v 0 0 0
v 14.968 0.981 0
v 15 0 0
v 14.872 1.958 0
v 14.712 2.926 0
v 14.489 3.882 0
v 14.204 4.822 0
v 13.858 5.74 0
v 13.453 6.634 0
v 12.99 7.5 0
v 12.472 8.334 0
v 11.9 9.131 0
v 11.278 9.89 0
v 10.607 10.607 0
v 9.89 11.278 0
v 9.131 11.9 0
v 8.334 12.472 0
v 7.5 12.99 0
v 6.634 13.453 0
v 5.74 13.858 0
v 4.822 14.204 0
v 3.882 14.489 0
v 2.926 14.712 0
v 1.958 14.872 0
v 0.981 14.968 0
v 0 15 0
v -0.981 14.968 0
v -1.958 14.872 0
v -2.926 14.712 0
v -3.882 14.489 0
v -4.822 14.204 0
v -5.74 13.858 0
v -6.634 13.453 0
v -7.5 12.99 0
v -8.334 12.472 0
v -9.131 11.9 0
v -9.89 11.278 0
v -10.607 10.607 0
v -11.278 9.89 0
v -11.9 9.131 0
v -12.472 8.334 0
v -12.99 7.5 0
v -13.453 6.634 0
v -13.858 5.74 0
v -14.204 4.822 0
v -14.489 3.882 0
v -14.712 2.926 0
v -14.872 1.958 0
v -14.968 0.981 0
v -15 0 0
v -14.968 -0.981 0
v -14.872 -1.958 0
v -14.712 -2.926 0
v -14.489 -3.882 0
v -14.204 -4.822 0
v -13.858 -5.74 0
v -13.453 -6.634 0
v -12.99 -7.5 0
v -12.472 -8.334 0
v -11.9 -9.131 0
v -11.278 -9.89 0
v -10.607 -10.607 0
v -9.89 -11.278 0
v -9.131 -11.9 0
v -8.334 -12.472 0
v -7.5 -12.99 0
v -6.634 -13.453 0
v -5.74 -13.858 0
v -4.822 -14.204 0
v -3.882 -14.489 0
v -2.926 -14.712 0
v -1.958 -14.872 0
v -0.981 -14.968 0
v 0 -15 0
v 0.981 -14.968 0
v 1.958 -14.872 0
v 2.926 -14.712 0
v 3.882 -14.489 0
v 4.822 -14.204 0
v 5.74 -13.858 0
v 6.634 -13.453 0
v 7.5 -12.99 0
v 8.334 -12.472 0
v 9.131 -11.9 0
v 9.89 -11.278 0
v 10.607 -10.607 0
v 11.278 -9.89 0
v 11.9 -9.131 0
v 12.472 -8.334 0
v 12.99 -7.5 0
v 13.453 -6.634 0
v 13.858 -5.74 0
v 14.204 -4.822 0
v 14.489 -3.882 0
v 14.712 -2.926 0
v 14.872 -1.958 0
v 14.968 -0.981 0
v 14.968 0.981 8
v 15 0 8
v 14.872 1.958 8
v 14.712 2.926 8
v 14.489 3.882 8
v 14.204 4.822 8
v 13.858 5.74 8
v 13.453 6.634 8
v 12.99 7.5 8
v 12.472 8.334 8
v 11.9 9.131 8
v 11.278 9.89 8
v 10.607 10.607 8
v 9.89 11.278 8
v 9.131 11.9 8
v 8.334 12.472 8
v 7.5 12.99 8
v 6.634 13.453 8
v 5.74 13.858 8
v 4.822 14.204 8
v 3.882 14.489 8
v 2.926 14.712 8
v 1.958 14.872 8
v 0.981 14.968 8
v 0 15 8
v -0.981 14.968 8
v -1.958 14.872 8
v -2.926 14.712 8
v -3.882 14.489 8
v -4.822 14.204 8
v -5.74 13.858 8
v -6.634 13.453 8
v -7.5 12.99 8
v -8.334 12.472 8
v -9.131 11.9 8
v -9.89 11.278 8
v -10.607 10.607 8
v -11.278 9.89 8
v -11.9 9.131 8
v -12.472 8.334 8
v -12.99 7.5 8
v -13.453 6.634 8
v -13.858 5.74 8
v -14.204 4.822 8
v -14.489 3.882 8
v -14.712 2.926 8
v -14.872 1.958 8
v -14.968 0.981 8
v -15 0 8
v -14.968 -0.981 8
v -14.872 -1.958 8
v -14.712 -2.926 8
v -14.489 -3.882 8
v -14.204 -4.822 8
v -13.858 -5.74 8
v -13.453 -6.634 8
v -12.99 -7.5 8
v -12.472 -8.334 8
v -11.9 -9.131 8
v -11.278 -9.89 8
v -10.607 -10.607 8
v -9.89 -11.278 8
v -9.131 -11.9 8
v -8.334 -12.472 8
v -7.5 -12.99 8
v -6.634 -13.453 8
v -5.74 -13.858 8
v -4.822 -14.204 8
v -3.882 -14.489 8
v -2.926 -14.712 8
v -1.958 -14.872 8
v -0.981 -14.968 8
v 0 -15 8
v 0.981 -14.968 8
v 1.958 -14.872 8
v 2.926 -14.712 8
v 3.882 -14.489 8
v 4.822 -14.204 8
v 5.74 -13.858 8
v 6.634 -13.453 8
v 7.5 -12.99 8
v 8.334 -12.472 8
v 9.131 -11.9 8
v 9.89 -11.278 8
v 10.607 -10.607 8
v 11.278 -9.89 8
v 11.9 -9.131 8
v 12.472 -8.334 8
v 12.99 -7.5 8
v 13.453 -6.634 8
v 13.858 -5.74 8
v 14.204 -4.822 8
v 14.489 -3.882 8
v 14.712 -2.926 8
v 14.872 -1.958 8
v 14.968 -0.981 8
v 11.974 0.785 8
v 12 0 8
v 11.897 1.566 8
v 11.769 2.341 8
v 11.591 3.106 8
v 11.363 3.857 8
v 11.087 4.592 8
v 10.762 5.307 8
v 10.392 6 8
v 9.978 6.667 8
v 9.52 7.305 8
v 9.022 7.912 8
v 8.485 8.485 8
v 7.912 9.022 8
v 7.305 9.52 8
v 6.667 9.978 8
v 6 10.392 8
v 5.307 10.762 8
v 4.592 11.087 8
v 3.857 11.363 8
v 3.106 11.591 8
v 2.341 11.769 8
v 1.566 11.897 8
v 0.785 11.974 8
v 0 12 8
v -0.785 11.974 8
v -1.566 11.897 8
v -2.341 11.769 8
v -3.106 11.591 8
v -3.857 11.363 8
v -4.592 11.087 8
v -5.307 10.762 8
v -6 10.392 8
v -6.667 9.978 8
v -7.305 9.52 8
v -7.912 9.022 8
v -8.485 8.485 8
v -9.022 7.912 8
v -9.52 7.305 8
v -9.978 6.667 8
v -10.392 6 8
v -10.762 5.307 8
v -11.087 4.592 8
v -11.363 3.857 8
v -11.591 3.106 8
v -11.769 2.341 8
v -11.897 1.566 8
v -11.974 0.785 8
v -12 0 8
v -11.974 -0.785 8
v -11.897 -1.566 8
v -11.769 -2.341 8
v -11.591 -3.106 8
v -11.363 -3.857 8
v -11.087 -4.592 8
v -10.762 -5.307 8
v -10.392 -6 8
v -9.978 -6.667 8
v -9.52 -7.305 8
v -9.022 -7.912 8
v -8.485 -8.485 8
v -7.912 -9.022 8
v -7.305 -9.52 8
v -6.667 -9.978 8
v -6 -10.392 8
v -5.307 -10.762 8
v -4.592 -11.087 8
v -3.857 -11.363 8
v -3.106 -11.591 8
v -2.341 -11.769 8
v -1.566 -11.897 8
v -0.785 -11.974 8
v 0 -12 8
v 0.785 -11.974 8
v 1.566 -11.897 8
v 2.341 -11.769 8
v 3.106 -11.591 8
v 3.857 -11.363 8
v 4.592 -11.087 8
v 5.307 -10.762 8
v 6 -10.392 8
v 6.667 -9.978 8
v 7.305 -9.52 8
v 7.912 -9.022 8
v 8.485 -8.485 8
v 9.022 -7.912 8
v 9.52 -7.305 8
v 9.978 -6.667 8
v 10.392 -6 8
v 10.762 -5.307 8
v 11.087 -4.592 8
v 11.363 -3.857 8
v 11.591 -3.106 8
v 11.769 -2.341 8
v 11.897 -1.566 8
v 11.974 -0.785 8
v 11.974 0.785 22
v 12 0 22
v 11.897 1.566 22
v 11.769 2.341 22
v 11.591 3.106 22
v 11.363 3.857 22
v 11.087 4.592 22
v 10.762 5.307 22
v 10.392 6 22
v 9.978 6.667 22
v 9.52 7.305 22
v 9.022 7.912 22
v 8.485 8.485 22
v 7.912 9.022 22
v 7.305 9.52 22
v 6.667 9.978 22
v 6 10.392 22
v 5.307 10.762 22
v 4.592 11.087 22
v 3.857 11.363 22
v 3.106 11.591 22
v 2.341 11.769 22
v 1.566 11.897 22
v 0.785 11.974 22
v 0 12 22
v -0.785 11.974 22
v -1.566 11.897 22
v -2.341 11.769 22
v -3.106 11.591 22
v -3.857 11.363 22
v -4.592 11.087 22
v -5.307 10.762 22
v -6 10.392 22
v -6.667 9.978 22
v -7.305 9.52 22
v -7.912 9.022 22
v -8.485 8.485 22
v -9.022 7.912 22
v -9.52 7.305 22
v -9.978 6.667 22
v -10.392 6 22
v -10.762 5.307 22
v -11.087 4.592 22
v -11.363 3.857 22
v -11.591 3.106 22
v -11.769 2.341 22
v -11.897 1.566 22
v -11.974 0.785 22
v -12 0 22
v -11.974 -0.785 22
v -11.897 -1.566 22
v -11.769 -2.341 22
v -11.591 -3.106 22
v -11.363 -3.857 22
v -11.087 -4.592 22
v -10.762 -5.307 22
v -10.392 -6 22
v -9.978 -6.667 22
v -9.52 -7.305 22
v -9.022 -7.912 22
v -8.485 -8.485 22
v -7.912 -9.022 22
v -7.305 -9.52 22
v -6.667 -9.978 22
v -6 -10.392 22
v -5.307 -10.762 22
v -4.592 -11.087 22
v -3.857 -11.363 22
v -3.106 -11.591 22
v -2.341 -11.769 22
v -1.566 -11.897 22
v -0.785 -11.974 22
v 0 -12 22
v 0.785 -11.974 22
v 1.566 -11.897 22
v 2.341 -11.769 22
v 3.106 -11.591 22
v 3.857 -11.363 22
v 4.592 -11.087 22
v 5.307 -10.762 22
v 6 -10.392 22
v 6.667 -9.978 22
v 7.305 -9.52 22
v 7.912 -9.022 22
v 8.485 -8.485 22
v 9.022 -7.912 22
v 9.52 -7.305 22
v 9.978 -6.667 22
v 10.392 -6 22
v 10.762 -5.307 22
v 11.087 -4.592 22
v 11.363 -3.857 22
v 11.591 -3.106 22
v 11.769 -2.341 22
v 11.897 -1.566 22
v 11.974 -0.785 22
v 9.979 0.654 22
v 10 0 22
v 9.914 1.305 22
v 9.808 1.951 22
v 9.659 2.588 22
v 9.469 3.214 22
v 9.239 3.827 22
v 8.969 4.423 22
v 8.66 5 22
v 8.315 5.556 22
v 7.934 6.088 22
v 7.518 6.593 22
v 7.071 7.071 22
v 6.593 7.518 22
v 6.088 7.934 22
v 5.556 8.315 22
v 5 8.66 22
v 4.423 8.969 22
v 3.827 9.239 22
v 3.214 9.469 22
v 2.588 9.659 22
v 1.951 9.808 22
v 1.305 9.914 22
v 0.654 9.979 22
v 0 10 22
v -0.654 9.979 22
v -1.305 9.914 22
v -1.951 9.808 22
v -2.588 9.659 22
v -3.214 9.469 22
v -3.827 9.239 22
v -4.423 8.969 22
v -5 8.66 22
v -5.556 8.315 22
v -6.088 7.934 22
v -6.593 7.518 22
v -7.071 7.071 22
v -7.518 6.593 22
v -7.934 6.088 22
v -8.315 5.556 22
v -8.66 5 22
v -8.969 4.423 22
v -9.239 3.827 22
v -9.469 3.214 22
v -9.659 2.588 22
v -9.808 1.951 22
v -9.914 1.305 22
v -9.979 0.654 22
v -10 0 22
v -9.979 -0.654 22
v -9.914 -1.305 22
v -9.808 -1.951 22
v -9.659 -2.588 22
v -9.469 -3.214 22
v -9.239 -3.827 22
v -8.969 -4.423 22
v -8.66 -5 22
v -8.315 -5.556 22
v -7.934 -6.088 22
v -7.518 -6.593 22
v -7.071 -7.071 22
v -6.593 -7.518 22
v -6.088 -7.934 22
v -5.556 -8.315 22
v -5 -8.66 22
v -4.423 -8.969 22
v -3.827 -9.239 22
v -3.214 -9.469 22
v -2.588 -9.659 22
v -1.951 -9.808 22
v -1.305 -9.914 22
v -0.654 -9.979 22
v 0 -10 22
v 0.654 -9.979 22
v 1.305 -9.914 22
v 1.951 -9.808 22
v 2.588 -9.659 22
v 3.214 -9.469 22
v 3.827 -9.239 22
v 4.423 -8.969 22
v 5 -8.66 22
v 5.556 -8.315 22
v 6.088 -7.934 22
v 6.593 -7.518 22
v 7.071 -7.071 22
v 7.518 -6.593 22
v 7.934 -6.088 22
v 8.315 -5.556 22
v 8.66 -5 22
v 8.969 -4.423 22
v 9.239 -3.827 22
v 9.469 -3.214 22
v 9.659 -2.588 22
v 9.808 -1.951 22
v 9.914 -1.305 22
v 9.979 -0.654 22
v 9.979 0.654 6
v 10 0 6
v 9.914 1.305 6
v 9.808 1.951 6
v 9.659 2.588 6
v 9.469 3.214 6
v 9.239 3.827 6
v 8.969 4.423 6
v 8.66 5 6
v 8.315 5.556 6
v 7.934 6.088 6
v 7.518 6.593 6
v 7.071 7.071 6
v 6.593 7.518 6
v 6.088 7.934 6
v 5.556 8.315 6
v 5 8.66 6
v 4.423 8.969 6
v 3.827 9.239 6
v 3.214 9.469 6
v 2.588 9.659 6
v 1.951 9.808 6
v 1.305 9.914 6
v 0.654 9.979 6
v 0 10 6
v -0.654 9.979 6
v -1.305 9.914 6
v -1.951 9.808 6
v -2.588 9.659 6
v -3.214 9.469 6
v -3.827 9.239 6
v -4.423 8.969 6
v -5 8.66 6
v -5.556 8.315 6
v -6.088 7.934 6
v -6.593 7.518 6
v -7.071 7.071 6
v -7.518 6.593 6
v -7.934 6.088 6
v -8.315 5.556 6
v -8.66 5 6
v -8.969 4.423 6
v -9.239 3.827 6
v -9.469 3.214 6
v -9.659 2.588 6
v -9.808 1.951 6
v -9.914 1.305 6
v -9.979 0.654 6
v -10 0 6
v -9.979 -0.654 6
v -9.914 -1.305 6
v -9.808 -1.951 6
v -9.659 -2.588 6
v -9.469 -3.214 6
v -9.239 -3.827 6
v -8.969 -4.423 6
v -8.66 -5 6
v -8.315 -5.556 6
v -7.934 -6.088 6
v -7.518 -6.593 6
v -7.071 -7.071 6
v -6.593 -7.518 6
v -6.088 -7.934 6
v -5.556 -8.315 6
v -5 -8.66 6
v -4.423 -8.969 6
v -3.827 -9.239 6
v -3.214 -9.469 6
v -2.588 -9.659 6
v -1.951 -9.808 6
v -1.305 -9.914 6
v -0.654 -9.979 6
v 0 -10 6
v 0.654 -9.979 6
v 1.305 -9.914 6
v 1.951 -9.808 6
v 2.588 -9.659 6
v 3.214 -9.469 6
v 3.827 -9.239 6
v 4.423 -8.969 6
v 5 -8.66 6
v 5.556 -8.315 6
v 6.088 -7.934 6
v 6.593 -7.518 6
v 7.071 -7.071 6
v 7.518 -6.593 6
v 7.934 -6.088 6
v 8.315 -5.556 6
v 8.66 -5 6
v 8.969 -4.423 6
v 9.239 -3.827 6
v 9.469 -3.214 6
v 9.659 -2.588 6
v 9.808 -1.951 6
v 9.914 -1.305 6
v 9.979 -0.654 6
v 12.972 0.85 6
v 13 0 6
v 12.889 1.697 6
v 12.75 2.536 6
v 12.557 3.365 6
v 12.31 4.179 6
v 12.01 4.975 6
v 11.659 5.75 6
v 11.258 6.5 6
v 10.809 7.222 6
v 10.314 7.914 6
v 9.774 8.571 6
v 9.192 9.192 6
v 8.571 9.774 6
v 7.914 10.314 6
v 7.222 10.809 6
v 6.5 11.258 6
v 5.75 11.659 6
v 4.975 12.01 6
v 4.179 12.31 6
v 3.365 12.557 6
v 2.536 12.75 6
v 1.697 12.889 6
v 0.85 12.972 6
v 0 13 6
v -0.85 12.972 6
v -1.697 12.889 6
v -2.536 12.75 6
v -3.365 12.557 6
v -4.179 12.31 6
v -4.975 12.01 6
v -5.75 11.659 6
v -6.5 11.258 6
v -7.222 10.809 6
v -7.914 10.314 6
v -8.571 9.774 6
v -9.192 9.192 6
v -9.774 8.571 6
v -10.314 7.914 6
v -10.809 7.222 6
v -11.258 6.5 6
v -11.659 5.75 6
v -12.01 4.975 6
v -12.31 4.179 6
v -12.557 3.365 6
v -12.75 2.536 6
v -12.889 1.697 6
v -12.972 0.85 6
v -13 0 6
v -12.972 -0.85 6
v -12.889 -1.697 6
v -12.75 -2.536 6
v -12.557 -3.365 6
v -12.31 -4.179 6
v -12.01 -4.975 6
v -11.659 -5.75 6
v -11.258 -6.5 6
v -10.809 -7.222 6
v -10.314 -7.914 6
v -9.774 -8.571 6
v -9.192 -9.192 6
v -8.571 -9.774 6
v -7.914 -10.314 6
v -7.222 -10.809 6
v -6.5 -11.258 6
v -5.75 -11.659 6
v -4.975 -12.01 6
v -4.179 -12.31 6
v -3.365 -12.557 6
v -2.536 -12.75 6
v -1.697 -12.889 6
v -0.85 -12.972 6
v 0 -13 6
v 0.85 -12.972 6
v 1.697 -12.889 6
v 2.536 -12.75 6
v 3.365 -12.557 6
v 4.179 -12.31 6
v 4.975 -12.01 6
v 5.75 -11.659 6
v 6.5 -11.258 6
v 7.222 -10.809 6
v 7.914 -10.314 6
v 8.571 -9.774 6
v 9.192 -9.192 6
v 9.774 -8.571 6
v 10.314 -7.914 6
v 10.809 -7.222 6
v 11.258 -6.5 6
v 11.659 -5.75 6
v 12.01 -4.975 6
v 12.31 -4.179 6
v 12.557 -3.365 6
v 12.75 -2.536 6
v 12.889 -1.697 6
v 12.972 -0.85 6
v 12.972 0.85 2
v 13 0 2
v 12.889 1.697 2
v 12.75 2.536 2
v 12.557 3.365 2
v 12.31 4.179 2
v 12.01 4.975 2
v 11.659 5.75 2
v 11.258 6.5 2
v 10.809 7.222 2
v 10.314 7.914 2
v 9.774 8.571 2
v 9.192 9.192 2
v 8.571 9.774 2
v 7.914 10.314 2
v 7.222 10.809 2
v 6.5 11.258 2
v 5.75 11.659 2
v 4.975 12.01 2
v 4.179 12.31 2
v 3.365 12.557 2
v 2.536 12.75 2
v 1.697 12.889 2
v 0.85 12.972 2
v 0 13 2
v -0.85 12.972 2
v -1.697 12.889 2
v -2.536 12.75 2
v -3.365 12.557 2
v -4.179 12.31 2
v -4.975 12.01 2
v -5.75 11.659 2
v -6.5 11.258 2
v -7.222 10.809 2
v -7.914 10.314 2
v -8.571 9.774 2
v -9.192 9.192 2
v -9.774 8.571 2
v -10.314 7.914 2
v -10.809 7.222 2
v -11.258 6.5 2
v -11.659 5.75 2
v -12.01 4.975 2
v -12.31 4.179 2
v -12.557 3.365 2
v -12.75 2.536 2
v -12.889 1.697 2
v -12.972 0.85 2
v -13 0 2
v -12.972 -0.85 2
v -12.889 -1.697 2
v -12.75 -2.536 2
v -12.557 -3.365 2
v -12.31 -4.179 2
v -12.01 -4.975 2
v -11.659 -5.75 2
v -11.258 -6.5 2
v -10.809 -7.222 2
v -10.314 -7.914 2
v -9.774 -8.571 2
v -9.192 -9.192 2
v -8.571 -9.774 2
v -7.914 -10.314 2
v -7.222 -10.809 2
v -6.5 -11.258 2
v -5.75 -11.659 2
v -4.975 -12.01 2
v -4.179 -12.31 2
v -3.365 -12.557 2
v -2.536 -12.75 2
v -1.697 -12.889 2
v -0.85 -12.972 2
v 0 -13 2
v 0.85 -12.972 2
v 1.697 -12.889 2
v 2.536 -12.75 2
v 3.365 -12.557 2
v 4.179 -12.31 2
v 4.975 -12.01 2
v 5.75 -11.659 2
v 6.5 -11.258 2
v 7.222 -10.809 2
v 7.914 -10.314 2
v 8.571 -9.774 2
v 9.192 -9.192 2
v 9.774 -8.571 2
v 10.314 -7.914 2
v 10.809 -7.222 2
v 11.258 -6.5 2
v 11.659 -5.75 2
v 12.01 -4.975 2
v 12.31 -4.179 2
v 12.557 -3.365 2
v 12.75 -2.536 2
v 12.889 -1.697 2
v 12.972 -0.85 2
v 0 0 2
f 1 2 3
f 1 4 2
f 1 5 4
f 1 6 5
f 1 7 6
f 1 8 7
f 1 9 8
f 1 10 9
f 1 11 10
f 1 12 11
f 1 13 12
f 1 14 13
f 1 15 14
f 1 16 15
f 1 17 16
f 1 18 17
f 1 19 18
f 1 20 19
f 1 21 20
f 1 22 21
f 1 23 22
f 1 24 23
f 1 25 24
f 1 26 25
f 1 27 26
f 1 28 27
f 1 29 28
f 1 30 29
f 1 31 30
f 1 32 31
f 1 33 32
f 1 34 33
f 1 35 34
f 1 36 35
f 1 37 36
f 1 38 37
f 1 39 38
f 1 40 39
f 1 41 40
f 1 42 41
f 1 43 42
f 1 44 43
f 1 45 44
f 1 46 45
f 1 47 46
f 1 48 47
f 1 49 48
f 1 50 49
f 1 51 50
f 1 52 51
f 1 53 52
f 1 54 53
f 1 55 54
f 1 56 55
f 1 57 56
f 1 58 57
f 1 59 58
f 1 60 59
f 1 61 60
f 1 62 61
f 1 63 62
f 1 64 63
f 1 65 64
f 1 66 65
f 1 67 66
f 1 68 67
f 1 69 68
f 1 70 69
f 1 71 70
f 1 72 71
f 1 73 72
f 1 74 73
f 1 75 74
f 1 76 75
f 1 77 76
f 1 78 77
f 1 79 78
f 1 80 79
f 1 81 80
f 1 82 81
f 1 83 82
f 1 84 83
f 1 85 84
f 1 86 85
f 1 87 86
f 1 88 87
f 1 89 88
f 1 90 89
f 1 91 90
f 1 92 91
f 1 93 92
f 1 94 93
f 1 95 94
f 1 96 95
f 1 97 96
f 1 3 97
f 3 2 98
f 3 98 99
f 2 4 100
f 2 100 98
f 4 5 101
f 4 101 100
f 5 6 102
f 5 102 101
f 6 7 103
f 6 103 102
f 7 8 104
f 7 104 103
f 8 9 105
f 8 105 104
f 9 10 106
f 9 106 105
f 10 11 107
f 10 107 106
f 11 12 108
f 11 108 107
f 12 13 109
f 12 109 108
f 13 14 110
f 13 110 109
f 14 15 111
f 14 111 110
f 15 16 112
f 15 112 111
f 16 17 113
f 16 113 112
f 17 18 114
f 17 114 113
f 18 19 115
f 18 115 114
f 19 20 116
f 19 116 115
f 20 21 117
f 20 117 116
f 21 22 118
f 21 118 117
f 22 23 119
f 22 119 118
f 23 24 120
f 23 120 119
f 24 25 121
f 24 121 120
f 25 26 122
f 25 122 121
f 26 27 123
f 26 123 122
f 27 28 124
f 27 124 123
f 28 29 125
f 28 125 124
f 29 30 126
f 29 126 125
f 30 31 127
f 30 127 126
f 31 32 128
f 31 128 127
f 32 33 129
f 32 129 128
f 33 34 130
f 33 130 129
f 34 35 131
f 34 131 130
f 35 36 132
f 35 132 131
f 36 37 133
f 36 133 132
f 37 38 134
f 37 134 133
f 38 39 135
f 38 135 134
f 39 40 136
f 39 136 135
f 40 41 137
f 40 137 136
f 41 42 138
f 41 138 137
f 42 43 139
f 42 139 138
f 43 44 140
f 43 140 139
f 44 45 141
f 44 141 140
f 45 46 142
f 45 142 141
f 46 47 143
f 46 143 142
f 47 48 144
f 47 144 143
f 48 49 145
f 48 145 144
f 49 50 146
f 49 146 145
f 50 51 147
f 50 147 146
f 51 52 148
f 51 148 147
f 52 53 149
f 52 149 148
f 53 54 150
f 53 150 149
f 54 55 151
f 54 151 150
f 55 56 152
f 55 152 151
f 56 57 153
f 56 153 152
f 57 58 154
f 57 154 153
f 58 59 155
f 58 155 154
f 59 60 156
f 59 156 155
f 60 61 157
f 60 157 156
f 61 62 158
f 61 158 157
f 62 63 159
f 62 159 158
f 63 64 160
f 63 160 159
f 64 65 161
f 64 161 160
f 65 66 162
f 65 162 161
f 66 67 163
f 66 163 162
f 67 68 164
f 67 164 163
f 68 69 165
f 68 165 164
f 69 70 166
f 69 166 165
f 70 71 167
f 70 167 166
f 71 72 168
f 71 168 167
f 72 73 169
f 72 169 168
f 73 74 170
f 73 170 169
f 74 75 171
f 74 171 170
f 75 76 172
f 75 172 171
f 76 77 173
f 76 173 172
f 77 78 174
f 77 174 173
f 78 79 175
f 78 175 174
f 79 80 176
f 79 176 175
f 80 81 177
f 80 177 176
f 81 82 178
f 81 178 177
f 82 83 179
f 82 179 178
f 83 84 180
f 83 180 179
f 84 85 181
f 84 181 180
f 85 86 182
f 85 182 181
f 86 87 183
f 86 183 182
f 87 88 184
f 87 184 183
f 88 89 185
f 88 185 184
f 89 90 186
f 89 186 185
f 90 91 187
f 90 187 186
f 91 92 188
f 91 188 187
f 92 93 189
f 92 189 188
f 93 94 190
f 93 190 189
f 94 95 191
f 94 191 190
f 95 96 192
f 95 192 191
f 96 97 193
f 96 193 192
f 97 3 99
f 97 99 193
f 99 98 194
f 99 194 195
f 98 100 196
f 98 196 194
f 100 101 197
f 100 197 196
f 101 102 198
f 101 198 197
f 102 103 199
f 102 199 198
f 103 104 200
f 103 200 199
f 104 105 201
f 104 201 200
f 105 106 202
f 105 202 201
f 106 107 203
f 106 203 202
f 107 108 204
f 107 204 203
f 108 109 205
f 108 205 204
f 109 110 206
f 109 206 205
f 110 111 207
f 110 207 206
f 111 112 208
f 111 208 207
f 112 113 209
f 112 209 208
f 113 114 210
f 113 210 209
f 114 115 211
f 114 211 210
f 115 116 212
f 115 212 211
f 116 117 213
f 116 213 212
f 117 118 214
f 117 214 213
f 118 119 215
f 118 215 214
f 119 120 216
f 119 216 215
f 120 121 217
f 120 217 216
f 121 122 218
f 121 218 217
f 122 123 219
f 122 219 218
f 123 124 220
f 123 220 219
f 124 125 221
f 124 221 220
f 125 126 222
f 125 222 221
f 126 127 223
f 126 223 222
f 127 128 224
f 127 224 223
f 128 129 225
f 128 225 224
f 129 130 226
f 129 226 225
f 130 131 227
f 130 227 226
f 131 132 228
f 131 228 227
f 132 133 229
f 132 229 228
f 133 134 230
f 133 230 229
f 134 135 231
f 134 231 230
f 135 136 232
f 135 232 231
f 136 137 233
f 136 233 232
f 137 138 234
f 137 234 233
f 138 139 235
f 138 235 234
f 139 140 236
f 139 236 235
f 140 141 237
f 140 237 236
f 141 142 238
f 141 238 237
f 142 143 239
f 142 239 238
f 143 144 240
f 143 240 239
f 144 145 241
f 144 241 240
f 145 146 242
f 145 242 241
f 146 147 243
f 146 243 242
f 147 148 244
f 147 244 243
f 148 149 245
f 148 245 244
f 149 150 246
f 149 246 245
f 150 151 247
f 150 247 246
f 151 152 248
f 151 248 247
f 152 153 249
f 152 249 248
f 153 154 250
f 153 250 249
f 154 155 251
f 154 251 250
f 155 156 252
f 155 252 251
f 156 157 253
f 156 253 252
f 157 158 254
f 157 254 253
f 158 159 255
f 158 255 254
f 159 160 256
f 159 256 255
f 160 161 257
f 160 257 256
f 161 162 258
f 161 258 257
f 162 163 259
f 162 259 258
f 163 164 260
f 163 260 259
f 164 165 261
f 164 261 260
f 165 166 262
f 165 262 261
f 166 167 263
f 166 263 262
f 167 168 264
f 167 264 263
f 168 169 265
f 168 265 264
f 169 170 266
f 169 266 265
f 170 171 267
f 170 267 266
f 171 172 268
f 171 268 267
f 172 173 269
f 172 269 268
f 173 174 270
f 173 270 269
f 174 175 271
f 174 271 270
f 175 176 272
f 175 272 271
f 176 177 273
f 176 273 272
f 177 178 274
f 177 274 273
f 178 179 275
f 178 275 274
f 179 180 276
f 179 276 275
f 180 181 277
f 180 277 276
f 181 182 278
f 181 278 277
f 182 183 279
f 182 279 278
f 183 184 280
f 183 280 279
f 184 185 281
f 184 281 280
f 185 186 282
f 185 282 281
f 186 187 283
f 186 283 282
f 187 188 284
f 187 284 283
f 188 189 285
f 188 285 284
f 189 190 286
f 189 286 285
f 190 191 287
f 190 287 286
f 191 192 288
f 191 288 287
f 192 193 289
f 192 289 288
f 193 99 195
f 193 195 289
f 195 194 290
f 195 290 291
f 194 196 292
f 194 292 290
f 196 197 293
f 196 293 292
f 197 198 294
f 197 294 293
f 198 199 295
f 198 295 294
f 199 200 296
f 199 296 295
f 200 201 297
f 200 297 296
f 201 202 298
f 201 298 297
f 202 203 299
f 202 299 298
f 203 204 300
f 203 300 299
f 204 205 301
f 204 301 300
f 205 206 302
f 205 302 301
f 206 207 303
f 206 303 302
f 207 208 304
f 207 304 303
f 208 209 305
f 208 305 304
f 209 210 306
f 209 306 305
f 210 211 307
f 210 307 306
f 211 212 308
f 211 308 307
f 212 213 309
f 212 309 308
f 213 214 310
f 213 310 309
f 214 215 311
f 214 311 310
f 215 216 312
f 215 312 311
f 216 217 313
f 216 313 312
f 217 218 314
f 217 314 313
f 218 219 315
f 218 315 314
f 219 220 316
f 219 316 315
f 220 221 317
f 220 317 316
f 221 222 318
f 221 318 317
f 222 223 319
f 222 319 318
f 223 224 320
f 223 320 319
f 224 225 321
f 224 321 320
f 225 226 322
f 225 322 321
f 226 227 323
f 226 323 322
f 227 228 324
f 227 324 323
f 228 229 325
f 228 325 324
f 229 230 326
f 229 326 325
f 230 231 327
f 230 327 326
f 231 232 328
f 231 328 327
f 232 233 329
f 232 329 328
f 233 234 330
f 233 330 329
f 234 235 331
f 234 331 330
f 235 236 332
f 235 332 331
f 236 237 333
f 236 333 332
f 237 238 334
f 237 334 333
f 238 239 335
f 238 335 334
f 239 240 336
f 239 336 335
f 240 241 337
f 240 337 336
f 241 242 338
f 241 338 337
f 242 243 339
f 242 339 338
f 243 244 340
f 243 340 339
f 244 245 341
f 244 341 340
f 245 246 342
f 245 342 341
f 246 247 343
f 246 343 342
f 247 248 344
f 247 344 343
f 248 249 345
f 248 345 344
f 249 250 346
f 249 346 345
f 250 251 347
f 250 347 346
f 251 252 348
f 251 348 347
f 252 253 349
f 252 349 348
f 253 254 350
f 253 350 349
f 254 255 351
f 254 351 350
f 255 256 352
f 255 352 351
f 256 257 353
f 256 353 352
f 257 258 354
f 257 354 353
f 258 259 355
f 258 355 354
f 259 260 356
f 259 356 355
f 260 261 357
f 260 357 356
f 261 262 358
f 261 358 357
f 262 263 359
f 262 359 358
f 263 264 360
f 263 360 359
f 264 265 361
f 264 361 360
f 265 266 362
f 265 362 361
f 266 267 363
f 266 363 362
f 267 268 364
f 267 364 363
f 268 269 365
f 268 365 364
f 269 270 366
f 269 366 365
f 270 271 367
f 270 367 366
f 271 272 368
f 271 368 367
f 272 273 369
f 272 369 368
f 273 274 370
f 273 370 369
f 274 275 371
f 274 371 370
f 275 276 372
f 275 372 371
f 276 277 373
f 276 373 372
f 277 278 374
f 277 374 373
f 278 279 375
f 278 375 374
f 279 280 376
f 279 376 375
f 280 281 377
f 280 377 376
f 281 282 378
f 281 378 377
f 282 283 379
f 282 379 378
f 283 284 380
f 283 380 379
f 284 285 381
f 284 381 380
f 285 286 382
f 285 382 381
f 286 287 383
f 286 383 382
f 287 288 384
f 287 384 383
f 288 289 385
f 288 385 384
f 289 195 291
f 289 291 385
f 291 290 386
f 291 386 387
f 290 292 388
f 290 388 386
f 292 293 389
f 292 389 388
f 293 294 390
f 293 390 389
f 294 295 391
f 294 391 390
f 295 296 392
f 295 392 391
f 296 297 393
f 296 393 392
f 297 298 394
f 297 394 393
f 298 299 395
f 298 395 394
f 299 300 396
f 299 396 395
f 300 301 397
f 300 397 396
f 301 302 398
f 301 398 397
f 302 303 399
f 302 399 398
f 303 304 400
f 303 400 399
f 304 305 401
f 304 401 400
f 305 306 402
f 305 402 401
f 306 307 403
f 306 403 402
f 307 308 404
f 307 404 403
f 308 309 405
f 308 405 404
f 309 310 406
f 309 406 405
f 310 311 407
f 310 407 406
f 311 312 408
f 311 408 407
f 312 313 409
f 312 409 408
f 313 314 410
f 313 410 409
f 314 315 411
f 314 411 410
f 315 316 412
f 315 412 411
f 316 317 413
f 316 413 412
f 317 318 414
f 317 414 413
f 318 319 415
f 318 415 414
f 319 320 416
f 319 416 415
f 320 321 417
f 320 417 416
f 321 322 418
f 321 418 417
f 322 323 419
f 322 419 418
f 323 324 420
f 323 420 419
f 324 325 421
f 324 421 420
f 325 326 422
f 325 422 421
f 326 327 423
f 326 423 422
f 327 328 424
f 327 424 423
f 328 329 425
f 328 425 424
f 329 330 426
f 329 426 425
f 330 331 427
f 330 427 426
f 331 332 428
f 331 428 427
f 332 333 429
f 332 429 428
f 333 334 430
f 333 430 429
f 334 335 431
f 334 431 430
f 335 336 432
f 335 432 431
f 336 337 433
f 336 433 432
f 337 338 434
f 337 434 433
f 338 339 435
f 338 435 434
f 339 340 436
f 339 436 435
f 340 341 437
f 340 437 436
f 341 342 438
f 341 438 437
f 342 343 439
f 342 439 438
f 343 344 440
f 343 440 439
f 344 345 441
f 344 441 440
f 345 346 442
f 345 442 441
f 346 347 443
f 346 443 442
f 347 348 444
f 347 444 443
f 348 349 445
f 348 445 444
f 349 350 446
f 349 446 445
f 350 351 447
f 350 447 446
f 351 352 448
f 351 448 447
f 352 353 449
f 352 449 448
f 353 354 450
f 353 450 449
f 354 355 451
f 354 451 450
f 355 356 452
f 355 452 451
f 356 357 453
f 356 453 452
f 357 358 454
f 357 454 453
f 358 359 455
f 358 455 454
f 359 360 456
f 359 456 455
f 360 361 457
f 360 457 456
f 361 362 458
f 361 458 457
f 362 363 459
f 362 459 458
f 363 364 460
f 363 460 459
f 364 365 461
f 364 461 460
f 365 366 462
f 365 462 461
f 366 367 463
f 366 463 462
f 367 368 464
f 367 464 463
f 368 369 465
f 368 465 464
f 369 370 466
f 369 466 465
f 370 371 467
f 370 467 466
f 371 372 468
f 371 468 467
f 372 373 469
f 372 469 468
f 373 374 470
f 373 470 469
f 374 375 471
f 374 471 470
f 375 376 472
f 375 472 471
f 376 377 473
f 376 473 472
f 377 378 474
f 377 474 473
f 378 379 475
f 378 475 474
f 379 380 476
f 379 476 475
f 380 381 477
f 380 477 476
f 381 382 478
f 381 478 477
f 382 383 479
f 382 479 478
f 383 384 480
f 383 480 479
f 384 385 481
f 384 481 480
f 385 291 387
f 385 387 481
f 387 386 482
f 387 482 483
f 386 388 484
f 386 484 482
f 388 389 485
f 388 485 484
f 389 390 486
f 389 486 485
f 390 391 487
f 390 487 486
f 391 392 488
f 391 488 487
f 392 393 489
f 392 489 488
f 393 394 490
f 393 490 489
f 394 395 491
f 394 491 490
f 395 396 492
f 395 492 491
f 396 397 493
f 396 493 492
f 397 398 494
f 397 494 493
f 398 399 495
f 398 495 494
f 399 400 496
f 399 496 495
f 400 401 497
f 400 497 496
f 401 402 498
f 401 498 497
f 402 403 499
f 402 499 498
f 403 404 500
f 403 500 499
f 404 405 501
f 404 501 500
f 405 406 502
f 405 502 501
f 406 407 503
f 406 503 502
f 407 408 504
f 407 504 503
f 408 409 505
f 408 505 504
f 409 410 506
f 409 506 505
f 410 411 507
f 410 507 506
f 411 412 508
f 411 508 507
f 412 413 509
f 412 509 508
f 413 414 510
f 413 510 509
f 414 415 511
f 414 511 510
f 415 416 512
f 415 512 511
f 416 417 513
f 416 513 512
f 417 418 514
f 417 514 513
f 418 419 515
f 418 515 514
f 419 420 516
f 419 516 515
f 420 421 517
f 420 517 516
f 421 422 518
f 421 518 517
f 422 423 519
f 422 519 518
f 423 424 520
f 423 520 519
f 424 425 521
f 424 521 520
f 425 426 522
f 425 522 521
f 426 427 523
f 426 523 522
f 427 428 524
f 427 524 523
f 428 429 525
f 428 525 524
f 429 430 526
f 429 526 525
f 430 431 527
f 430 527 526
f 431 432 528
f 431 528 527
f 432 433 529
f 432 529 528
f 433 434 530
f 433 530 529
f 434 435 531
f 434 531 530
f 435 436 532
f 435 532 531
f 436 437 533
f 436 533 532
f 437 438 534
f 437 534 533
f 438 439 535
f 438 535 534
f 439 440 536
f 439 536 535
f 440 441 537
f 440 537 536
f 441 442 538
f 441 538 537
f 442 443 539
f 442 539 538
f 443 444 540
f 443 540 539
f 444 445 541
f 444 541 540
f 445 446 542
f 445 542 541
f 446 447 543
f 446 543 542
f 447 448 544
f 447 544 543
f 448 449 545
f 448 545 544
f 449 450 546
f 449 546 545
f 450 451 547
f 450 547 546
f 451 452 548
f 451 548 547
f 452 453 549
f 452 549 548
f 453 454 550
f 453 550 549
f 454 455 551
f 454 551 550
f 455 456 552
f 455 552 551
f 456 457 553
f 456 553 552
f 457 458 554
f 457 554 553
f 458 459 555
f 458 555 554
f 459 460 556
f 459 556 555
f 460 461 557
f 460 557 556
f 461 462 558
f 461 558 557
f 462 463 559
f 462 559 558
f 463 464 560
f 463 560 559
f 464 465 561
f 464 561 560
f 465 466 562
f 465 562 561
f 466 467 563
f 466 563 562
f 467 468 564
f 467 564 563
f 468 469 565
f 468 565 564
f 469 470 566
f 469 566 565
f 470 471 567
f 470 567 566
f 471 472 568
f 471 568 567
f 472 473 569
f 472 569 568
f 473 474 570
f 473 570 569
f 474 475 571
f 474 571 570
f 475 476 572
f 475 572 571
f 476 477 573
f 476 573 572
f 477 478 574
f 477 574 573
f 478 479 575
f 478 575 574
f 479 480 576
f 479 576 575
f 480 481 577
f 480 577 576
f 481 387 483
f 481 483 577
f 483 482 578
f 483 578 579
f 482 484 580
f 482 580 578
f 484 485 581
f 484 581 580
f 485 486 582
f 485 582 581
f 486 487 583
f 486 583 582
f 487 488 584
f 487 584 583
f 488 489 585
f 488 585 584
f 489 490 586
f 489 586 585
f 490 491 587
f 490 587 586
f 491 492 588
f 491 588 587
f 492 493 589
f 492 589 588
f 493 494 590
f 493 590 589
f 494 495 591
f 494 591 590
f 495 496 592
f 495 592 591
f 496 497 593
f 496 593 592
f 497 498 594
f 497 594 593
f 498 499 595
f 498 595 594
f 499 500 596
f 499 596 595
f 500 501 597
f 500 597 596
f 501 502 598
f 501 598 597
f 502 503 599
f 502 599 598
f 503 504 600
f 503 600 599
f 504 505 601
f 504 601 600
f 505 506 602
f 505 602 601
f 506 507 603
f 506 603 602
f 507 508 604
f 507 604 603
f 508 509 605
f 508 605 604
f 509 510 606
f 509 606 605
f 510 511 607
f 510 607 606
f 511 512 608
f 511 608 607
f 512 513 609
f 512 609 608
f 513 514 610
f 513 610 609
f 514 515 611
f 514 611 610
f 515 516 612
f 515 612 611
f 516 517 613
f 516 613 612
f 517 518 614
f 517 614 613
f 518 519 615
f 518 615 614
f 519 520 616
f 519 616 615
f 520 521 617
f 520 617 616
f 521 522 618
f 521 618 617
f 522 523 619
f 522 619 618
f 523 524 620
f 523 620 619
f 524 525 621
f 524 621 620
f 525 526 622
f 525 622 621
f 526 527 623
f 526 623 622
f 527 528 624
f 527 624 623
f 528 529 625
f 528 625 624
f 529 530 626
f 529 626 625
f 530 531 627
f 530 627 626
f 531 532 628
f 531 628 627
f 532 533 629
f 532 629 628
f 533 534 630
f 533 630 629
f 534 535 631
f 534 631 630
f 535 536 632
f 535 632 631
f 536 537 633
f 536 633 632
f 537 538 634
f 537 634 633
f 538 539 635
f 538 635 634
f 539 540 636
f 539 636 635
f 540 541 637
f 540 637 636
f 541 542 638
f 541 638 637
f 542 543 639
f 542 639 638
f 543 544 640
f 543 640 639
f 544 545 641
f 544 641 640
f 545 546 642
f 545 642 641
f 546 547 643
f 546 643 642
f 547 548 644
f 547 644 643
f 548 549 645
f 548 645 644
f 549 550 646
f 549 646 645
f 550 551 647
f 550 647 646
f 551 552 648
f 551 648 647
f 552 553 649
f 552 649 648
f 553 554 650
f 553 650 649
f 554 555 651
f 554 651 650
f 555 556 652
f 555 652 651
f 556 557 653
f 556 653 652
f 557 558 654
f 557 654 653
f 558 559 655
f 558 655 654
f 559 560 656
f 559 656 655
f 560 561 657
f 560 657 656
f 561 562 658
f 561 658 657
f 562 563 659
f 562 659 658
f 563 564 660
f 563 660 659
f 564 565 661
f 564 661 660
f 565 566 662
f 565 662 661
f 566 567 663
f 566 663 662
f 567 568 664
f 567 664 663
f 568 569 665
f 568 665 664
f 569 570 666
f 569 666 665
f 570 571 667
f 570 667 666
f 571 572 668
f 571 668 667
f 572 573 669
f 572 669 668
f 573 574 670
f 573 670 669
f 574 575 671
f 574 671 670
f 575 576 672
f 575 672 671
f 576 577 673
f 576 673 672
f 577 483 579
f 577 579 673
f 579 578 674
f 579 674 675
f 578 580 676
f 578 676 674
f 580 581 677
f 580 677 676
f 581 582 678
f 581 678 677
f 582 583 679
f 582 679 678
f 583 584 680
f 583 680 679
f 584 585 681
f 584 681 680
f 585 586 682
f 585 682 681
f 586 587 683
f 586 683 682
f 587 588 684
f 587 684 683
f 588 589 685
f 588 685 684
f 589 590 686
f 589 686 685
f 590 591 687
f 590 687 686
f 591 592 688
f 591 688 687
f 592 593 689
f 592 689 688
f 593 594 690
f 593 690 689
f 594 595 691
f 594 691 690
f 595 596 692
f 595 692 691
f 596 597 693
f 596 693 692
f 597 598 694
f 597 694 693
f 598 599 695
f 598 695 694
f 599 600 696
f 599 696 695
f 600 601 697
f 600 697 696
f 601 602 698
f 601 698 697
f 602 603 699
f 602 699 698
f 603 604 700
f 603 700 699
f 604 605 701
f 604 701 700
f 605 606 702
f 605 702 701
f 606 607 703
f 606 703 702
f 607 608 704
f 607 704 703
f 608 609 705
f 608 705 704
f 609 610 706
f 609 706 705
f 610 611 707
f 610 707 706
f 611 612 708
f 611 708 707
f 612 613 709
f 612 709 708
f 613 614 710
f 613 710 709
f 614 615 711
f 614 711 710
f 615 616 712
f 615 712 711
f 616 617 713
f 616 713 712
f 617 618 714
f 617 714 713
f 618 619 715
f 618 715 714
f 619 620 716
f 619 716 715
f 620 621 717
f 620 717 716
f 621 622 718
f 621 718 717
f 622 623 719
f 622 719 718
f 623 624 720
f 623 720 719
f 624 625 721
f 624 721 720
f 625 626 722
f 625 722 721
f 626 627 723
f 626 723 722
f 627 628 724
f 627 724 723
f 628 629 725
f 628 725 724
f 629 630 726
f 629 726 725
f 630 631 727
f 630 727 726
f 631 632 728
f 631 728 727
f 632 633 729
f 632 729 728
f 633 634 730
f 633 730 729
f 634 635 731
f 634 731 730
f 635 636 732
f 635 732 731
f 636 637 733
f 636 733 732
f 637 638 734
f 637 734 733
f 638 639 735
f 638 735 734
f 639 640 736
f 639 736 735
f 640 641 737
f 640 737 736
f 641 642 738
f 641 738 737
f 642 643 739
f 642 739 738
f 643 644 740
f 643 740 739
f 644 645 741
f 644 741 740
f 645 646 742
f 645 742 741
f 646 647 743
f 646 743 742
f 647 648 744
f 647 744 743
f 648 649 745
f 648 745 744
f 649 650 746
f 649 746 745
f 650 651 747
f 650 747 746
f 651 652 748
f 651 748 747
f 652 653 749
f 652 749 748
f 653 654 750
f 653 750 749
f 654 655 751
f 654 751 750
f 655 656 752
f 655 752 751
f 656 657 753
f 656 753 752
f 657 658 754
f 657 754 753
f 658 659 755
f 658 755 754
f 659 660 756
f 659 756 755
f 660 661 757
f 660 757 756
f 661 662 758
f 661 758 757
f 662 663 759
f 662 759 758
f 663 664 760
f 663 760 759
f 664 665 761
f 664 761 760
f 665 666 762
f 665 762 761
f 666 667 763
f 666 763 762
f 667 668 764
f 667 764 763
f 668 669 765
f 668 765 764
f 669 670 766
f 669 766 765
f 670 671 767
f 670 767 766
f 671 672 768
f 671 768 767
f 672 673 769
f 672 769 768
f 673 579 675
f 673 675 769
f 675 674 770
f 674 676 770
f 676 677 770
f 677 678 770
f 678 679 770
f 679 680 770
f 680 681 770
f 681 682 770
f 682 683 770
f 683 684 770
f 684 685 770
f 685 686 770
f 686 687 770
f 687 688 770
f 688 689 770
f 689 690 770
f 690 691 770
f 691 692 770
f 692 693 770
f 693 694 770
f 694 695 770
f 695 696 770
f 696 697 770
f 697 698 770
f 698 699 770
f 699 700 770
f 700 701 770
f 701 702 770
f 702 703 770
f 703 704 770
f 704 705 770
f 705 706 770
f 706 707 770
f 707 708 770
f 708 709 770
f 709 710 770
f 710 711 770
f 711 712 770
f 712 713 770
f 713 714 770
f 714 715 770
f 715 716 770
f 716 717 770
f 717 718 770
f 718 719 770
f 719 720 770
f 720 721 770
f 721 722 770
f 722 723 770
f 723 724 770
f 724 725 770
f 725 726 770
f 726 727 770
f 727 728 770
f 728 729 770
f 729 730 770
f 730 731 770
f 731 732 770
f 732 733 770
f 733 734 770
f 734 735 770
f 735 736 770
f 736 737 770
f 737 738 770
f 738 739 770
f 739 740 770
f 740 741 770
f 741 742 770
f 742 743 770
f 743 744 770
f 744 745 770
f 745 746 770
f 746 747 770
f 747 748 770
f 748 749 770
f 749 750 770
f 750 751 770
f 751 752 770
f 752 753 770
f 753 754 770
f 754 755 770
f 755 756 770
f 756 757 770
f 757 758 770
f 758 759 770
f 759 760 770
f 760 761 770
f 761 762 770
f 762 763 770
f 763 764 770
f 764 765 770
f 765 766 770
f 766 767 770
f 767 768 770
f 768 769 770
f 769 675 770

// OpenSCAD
// Original MechIntel educational model. CC0-1.0. Units: mm.
// Not a standardized or load-rated component.
$fn=96;
// Section points: [radius, height], mm. Edit to change the profile.
section=[[0, 0], [15, 0], [15, 8], [12, 8], [12, 22], [10, 22], [10, 6], [13, 6], [13, 2], [0, 2]];
rotate_extrude($fn=96) polygon(points=section);
